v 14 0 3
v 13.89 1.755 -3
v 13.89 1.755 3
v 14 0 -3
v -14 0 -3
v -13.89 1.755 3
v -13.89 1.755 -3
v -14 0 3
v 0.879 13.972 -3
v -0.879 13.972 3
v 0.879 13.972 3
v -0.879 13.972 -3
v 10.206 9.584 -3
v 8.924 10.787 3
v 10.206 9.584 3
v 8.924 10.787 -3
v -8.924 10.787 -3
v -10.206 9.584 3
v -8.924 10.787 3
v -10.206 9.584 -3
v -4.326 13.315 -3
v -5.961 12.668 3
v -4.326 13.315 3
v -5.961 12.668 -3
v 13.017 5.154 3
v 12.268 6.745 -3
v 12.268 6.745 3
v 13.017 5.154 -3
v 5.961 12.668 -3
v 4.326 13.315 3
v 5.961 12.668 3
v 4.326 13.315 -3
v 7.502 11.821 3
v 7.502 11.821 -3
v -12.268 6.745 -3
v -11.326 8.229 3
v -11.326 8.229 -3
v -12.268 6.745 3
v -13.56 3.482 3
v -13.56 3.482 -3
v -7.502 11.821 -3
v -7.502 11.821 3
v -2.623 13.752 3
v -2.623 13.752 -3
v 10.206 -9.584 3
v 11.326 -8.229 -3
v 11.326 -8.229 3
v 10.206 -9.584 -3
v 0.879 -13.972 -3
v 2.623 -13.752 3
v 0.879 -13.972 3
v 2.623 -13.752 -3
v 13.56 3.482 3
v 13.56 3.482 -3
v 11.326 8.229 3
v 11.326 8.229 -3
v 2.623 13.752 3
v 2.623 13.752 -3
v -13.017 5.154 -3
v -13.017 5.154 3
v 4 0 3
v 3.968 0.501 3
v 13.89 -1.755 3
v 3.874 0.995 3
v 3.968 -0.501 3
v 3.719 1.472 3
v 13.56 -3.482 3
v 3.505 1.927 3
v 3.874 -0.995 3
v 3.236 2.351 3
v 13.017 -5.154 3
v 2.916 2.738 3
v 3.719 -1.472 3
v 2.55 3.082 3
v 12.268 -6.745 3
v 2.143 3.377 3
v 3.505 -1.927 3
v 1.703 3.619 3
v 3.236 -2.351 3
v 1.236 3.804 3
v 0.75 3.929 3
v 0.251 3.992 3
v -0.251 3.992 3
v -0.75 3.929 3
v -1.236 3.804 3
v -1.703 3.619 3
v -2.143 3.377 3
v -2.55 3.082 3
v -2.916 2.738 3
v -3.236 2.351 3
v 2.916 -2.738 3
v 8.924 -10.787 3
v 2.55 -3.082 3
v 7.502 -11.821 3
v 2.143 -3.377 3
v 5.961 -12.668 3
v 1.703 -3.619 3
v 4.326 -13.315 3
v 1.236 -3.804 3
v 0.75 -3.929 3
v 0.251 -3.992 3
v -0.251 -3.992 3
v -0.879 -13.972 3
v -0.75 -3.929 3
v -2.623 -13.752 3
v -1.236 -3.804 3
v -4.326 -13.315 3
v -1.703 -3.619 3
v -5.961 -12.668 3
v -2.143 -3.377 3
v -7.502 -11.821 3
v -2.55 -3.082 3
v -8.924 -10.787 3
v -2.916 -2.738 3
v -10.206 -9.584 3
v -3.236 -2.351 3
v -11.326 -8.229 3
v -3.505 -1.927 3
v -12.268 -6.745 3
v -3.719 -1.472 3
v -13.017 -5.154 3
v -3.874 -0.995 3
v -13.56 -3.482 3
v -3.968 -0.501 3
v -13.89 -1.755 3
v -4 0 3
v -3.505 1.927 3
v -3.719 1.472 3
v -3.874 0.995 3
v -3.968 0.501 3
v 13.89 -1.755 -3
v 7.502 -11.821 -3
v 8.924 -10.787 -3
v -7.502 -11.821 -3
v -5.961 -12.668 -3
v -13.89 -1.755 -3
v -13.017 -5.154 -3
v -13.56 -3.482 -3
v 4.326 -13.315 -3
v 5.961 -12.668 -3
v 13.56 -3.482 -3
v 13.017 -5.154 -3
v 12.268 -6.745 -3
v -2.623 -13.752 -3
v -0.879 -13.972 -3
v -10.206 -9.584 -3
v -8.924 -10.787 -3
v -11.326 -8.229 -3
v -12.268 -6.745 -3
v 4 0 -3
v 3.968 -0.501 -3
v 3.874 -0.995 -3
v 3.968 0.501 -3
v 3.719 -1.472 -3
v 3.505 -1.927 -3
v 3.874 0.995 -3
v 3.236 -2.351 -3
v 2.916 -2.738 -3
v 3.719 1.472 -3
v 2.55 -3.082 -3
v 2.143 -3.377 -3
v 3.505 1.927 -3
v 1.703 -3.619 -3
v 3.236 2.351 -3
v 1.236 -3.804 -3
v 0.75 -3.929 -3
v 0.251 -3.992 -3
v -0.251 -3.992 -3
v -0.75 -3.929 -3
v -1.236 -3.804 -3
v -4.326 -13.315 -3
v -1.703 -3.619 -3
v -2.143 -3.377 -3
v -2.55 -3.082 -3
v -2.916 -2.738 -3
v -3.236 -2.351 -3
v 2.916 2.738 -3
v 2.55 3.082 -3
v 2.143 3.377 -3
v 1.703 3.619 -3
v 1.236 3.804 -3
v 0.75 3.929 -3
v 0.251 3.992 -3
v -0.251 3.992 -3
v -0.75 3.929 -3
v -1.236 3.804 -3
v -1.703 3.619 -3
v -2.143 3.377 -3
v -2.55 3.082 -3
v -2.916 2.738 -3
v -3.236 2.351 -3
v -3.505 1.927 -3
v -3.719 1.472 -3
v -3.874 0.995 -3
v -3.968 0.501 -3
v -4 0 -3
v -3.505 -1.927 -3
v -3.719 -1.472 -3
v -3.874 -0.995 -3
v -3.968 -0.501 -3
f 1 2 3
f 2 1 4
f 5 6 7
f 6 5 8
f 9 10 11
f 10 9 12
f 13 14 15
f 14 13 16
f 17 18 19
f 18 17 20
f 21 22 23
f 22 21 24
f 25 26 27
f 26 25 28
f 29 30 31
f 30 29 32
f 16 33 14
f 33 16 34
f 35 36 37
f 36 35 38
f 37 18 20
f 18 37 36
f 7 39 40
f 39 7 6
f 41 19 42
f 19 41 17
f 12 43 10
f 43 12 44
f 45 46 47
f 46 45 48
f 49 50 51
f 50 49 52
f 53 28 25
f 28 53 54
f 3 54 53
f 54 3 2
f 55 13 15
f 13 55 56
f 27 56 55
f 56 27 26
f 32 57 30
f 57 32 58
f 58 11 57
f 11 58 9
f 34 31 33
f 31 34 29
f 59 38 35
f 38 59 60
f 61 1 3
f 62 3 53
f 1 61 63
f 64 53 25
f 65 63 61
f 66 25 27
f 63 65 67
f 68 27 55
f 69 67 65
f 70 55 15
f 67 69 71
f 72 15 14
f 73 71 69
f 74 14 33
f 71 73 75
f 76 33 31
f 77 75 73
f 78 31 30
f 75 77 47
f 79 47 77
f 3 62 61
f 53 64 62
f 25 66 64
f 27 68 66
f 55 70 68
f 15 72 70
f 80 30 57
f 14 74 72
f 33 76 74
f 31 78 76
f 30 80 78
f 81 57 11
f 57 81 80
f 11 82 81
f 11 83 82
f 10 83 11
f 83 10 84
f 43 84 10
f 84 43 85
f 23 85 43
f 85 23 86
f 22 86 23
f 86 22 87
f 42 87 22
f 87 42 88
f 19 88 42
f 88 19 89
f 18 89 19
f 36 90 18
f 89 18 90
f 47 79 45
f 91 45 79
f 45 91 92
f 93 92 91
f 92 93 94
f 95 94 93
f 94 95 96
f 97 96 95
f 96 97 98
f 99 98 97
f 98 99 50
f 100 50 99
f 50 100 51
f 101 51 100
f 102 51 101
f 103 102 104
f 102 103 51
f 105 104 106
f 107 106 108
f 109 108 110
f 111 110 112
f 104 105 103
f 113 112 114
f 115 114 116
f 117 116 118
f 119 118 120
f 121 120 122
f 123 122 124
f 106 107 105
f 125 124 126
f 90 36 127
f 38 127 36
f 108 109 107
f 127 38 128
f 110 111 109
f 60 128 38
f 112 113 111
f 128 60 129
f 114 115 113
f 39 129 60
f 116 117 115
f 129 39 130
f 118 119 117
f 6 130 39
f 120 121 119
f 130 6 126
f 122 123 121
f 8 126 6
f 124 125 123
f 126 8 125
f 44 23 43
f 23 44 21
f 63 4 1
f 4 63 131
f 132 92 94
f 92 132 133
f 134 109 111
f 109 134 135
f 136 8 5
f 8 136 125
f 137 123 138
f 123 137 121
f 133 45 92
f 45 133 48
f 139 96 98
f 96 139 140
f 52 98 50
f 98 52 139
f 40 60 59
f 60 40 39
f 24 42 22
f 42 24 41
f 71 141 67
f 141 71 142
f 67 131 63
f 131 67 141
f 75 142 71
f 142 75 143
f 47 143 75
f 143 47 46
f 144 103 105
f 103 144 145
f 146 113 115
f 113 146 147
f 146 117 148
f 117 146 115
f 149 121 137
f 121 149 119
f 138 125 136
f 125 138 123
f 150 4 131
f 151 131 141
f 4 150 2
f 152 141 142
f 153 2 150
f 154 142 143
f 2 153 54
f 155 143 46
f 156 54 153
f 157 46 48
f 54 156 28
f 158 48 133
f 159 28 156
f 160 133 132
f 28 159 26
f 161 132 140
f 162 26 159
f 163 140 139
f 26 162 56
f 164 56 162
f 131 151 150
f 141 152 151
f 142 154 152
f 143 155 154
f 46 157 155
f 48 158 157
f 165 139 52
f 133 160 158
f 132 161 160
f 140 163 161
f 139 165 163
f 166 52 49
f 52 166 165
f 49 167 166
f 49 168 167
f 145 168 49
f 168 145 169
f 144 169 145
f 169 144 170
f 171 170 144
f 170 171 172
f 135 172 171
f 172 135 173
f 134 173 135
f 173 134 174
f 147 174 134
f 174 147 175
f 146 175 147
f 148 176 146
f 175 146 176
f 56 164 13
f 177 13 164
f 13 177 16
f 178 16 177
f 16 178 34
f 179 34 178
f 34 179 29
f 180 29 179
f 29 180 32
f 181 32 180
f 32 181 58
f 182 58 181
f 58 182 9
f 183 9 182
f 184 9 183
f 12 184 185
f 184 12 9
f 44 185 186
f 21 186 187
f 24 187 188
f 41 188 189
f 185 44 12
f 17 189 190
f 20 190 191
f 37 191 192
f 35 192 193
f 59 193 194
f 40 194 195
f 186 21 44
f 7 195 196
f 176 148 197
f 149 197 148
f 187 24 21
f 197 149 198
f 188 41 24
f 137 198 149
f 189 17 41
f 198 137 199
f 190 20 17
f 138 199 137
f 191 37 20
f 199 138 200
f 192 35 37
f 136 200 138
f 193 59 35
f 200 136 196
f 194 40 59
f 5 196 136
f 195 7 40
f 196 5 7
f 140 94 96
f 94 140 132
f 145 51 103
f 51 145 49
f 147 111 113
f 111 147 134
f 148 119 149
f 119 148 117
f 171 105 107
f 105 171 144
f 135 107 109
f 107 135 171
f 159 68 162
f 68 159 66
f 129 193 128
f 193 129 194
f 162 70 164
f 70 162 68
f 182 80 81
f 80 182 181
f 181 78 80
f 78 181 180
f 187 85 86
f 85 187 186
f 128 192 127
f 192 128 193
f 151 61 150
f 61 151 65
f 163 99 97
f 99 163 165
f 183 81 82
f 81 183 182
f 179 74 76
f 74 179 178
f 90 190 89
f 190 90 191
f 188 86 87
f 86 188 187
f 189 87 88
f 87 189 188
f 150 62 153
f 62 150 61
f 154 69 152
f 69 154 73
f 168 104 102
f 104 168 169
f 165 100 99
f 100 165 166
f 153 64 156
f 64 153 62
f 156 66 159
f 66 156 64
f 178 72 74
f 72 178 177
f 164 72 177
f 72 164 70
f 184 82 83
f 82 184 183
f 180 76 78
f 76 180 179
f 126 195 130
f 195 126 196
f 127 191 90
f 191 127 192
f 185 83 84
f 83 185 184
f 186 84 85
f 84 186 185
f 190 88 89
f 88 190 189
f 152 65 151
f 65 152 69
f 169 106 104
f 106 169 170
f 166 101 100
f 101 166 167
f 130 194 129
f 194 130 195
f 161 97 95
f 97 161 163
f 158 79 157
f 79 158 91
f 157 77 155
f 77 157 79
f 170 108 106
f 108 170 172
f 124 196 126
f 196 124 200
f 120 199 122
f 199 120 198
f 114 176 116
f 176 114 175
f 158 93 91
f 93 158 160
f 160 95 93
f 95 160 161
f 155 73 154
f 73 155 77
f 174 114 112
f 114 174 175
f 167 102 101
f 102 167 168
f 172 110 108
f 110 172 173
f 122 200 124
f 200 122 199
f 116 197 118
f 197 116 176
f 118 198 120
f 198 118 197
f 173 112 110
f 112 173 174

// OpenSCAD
$fn = 50;


difference() {
	union() {
		translate(v = [0, 0, -3.0000000000]) {
			cylinder(h = 6, r = 14.0000000000);
		}
	}
	union() {
		translate(v = [0, 0, -100.0000000000]) {
			cylinder(h = 200, r = 4.0000000000);
		}
	}
}
